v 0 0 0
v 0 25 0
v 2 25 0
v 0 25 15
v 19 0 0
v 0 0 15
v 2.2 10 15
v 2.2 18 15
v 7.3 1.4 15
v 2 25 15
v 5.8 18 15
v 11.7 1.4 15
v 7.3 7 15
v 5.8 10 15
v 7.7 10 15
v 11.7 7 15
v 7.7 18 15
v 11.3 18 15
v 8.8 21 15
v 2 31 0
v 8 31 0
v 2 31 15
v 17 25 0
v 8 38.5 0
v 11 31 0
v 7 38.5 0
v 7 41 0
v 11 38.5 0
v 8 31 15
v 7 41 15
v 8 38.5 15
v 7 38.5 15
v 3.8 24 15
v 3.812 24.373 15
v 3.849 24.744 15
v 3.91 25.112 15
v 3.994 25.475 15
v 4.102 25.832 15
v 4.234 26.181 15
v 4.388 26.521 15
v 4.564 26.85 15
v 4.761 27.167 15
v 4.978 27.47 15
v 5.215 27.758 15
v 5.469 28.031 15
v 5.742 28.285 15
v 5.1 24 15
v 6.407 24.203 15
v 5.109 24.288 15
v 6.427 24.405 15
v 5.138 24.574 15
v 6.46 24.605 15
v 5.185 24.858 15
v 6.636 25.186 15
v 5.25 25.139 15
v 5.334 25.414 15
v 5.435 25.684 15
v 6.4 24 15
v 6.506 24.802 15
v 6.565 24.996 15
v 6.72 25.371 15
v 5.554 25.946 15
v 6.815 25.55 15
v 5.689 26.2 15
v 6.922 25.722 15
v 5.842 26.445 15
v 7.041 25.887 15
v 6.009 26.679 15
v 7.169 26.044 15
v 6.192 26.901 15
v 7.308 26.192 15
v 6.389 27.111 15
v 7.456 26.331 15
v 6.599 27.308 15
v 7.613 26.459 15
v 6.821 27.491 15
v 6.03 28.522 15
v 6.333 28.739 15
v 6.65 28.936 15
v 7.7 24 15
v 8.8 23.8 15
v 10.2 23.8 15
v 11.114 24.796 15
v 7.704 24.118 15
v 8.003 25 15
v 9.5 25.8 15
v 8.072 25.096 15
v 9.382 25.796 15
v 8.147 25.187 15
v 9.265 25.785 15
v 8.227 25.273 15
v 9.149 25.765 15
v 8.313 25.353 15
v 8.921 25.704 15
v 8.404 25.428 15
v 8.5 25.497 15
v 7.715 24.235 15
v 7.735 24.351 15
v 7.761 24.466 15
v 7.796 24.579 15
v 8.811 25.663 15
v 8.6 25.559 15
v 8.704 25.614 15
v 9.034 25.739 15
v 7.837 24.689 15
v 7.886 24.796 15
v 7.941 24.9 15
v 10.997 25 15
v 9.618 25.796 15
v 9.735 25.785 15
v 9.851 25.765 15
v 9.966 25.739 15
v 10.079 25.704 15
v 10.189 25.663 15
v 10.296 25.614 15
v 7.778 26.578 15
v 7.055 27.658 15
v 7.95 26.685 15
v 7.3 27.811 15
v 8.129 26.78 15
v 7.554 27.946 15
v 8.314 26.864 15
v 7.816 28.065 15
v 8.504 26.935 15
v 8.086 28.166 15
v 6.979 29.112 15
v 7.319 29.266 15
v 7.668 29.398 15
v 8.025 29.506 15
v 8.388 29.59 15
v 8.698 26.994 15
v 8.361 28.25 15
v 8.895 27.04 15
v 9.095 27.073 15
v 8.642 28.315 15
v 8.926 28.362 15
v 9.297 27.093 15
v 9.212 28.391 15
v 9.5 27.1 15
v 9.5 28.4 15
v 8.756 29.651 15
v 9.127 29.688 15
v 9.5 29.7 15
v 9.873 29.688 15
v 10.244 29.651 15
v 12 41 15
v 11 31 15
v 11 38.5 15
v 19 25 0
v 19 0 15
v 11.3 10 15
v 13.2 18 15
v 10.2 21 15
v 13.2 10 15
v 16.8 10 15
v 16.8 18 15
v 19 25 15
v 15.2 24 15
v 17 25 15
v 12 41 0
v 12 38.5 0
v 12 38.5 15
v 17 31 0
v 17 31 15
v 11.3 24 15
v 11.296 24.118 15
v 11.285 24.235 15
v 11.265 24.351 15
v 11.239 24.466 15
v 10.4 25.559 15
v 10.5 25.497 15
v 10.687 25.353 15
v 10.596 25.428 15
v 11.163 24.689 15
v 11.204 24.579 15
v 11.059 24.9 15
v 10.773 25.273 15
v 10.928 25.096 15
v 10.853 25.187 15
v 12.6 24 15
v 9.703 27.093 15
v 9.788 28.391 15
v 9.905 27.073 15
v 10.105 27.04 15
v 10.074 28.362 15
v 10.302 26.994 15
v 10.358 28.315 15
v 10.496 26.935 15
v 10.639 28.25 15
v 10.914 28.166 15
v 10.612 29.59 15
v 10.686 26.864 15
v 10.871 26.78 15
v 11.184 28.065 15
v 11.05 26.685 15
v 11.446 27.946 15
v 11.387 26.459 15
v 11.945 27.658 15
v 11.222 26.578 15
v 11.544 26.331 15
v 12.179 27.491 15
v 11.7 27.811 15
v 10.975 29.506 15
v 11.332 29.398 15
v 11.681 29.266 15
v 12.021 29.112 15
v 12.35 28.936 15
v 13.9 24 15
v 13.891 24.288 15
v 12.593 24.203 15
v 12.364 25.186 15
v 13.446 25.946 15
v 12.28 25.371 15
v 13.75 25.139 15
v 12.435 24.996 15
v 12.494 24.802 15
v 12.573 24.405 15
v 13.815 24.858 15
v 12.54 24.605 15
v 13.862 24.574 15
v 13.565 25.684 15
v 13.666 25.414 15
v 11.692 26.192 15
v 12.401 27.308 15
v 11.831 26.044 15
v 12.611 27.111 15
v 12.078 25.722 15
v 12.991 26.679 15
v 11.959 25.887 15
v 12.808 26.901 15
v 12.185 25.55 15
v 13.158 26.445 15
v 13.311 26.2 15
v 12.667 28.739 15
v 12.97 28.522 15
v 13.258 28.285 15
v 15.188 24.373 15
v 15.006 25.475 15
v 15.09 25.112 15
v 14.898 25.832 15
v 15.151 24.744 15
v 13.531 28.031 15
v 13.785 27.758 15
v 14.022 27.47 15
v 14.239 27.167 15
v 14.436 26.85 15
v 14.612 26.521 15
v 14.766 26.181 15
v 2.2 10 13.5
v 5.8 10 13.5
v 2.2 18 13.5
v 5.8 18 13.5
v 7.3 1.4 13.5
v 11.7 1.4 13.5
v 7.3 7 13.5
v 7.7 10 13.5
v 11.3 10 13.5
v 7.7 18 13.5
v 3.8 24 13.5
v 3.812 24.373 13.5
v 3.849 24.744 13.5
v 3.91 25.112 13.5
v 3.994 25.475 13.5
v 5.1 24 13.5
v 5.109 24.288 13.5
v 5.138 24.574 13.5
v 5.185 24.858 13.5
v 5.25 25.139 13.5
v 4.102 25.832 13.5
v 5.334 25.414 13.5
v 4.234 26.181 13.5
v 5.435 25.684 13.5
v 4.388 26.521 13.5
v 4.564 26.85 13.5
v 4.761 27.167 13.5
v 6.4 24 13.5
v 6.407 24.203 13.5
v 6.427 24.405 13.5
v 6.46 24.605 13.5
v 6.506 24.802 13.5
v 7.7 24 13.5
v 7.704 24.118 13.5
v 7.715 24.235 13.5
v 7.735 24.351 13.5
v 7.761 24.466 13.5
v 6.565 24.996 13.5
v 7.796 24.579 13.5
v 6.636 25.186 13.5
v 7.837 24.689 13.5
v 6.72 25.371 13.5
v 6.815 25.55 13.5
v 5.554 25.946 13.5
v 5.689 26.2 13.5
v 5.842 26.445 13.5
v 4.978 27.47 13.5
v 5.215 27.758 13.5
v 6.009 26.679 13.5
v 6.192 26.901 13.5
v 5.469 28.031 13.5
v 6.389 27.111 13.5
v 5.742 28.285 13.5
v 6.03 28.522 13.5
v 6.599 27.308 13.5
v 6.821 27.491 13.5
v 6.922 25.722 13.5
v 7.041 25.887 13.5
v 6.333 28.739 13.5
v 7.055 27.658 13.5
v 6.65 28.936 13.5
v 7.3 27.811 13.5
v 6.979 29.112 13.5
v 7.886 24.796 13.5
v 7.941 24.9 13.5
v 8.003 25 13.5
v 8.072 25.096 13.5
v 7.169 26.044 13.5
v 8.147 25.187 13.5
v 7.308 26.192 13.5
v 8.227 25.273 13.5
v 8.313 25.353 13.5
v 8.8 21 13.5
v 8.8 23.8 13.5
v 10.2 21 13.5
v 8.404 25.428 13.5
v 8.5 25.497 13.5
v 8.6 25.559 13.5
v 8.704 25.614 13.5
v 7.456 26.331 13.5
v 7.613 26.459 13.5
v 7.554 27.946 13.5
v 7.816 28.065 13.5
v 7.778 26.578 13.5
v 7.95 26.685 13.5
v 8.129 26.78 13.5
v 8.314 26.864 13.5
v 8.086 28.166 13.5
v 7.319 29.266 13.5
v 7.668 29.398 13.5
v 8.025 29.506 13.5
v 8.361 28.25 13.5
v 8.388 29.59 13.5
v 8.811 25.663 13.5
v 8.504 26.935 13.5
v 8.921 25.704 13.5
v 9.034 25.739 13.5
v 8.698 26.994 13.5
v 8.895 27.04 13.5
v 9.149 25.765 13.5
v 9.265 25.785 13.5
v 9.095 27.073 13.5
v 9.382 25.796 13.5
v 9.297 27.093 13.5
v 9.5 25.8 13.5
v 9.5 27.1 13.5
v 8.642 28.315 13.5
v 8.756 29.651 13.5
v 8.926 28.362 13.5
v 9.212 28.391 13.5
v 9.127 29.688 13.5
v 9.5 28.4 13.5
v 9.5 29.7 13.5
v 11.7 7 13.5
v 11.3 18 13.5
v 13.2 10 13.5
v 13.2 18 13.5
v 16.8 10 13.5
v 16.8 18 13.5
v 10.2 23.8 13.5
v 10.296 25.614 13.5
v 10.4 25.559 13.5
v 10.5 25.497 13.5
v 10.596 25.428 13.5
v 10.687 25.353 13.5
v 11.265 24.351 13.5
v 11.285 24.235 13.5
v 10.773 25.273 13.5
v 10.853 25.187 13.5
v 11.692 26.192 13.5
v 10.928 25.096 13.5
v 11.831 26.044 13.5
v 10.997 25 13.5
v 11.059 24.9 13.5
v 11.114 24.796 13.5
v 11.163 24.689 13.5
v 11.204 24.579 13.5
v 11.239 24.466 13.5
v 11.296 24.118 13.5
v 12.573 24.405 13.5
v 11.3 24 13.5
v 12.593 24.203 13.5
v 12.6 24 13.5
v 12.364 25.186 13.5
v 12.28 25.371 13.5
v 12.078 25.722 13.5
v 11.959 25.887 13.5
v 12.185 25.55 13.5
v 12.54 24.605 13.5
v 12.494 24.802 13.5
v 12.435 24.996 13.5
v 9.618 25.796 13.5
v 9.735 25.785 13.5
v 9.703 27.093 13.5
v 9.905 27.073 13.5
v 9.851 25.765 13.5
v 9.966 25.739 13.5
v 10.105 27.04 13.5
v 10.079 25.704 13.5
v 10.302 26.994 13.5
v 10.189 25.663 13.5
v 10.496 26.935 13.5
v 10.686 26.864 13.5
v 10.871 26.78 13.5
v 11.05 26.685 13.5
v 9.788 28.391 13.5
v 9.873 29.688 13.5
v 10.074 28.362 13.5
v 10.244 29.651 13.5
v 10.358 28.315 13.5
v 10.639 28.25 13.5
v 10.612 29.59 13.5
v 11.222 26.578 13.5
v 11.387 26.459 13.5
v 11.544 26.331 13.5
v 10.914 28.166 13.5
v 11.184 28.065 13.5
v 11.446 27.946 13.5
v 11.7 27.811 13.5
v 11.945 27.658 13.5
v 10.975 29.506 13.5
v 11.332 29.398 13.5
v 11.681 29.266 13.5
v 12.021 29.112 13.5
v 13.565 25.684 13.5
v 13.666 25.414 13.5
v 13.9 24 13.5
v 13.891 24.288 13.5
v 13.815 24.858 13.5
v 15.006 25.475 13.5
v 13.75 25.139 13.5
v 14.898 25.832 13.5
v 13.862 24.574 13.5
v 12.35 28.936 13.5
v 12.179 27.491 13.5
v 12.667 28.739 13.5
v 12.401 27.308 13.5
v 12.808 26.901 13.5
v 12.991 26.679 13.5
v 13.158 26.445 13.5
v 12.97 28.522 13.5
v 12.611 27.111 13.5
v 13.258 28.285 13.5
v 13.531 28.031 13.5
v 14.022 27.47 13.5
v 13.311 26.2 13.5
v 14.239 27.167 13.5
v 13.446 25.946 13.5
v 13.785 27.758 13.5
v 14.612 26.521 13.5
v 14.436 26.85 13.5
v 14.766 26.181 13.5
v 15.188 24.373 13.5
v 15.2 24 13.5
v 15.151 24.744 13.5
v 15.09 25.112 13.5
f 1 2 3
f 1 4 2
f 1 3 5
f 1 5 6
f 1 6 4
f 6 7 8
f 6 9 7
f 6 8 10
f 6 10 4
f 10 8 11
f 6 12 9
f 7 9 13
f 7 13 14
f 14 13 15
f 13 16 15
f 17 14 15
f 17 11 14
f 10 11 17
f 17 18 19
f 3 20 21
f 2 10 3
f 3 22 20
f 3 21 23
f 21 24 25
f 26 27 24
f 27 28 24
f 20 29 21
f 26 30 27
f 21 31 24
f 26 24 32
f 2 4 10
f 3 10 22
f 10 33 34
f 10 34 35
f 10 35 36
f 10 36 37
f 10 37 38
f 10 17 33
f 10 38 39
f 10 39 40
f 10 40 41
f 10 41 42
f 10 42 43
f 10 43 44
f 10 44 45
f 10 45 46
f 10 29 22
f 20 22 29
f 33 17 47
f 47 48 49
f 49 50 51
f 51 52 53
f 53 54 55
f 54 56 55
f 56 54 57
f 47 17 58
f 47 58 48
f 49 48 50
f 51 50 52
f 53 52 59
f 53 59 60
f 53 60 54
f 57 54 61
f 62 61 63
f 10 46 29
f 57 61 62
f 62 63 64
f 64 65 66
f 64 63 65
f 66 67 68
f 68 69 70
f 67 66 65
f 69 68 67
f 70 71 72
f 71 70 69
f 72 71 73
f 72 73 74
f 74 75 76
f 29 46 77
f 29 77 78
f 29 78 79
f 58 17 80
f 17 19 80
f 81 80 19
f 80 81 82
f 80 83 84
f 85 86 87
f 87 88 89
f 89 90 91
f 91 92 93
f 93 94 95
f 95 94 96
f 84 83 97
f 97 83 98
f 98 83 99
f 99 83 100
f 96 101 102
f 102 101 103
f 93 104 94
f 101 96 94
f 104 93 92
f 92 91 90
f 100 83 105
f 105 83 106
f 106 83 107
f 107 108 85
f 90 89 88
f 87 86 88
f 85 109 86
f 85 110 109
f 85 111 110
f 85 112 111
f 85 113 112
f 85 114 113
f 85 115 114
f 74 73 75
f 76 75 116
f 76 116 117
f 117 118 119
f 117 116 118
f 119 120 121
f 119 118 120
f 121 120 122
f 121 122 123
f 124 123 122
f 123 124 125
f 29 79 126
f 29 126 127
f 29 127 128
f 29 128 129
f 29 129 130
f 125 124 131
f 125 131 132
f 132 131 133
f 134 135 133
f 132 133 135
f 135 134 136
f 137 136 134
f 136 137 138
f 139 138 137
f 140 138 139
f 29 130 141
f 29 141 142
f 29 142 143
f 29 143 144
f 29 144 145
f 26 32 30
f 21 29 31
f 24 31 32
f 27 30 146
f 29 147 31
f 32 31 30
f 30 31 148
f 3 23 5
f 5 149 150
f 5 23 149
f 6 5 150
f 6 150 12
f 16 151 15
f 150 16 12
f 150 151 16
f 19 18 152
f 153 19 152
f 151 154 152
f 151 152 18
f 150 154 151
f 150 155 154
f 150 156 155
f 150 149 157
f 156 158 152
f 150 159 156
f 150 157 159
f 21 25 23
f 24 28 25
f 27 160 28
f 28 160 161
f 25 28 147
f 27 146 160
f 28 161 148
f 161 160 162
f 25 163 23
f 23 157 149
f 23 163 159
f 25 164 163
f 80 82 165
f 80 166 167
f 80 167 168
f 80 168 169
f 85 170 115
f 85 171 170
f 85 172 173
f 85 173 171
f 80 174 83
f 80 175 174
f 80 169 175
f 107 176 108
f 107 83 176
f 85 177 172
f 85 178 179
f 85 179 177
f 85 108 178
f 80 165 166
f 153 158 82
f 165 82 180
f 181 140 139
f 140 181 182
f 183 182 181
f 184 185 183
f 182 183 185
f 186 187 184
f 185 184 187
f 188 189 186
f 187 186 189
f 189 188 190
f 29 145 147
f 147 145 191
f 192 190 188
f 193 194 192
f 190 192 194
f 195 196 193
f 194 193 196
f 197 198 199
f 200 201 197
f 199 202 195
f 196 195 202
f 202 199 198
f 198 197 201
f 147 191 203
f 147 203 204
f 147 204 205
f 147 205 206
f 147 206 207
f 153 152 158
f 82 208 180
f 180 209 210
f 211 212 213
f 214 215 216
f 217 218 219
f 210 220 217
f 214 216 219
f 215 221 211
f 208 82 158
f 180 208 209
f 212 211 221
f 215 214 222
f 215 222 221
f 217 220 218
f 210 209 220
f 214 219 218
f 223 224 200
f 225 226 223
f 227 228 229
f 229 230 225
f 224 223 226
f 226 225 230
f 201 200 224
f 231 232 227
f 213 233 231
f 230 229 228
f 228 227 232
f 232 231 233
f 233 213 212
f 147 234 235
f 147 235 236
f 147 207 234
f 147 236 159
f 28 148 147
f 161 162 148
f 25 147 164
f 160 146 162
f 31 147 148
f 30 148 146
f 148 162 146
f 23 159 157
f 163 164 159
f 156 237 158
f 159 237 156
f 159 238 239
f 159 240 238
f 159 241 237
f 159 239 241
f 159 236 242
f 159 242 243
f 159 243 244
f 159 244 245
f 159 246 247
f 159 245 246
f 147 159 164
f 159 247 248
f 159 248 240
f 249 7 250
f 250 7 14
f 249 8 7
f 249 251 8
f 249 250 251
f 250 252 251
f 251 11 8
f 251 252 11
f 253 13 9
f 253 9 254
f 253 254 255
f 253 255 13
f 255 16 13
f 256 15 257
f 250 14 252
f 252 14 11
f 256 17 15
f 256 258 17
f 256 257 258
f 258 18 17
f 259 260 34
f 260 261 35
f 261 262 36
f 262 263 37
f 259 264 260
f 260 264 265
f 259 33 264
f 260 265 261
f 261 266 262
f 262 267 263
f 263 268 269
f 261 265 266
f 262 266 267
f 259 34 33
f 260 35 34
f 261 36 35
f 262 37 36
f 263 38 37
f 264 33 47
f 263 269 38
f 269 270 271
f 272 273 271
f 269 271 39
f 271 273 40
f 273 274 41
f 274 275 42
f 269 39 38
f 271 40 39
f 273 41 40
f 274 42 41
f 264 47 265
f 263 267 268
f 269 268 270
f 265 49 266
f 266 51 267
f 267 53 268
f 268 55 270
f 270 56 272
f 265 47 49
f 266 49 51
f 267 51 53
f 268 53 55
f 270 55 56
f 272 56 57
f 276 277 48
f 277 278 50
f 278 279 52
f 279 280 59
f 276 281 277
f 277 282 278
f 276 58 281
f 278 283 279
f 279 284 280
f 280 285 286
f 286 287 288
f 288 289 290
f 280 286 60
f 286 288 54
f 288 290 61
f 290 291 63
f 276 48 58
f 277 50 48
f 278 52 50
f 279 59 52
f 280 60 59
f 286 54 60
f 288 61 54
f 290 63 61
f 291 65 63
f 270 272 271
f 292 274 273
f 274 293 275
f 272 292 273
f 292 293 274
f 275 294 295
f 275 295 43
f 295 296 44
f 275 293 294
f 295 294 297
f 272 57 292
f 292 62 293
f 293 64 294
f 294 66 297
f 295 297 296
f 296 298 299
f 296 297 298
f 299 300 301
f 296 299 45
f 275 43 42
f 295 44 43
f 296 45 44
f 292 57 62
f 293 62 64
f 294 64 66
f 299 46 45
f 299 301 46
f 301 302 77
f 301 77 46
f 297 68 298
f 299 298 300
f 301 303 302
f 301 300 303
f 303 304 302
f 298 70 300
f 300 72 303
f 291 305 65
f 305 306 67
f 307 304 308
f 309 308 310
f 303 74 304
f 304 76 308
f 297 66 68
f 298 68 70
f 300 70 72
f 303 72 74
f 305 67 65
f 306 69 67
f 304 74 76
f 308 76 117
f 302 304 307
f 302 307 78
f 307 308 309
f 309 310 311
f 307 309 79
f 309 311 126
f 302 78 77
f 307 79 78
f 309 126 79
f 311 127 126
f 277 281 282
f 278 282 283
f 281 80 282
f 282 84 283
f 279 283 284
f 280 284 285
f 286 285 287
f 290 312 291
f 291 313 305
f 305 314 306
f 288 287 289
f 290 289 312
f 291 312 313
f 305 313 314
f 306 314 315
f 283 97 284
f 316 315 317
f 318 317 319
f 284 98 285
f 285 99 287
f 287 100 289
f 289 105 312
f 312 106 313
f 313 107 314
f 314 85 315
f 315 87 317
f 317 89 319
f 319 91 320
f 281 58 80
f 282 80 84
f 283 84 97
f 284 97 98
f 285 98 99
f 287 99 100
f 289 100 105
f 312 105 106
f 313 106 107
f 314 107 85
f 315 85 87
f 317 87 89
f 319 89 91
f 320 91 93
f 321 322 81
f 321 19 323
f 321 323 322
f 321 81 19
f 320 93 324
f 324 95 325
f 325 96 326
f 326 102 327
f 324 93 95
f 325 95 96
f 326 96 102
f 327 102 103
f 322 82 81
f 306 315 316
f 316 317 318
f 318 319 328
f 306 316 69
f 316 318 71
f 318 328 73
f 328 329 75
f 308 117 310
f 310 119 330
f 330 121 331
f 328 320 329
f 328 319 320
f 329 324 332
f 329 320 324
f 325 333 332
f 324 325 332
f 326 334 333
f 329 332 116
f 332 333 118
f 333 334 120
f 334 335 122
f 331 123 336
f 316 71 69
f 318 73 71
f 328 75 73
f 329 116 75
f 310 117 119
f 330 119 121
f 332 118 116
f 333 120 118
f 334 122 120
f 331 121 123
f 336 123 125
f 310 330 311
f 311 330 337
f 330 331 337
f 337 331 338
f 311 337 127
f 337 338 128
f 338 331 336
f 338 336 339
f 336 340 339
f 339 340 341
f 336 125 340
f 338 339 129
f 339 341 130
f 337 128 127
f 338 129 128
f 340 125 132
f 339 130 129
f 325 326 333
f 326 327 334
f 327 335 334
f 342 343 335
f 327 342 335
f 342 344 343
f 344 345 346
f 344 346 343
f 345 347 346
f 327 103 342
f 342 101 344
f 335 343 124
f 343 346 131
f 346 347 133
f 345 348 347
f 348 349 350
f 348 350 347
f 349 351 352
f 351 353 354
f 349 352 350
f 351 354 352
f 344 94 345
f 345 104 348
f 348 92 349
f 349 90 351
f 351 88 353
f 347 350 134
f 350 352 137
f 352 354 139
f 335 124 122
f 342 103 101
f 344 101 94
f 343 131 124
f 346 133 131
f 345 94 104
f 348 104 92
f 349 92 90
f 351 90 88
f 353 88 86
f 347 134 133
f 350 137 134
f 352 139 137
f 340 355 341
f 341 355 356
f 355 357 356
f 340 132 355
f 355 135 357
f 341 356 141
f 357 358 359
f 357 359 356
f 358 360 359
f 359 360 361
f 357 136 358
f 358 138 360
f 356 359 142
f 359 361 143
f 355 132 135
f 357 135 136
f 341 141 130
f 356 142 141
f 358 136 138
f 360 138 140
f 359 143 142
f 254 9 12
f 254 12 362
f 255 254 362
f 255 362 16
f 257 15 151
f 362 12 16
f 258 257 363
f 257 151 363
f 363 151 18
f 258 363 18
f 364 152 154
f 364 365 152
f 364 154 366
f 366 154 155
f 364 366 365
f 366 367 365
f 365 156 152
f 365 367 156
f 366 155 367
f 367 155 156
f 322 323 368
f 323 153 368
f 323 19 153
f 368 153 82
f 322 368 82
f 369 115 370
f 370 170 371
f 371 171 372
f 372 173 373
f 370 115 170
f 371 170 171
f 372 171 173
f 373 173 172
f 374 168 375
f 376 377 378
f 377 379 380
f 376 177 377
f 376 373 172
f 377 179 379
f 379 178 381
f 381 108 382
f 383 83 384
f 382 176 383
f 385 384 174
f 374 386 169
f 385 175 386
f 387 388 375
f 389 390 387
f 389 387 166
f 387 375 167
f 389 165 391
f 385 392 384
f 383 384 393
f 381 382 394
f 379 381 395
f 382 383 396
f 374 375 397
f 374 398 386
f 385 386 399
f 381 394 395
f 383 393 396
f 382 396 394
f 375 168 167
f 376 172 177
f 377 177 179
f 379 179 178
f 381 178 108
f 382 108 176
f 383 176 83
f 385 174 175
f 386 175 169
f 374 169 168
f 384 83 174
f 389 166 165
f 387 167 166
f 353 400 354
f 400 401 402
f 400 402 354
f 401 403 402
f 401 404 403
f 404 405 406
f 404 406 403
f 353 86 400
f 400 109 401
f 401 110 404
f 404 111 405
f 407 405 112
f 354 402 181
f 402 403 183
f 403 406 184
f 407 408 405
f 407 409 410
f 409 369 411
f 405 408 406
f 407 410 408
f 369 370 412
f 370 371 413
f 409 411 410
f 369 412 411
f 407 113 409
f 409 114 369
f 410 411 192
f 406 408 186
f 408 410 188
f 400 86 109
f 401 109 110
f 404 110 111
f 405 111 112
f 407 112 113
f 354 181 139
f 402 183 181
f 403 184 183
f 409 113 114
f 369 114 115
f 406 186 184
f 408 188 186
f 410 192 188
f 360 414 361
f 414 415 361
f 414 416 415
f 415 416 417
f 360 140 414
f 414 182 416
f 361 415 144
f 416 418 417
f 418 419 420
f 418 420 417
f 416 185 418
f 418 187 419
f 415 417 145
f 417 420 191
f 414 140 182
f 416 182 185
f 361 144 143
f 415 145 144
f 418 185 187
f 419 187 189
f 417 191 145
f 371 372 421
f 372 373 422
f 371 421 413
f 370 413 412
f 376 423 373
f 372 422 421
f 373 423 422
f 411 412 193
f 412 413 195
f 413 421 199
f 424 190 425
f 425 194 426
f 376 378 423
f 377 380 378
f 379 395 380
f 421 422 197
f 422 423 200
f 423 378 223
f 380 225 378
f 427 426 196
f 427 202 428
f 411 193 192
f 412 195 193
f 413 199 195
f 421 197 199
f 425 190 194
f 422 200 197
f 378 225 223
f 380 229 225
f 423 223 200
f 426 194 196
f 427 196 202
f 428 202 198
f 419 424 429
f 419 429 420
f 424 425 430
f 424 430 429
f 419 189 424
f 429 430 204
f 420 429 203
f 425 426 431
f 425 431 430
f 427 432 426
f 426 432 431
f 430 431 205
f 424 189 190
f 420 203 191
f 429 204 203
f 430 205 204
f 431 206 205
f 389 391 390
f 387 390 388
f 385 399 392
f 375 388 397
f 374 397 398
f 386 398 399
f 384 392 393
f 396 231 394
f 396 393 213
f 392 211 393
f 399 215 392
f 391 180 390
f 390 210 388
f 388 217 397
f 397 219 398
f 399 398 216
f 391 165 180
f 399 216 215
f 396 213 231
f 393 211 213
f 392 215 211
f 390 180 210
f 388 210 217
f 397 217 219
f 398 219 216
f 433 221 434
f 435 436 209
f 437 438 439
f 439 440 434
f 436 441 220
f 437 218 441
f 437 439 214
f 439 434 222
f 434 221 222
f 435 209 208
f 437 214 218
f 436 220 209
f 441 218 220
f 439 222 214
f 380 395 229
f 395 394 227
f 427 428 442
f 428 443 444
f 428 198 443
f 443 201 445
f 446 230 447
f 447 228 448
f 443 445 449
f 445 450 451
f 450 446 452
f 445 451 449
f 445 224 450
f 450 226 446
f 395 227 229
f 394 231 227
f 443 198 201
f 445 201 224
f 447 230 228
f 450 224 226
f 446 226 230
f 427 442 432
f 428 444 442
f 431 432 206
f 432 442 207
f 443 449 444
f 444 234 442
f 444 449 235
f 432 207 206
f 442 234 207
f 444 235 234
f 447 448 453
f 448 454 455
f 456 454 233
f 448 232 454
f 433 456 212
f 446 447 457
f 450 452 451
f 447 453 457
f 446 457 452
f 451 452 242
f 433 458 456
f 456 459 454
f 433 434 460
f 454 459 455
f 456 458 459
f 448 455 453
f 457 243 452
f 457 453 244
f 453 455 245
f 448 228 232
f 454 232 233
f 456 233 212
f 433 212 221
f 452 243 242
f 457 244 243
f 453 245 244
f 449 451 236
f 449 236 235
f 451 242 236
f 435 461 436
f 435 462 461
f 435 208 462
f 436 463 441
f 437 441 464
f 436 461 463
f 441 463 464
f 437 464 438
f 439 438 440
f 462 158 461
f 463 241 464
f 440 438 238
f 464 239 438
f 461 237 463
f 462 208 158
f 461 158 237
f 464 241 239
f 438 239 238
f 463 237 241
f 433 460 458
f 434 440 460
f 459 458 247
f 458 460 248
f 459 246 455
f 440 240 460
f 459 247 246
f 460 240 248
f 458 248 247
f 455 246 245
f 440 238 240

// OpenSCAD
// Building miniatures — Tech, AI & Digital
// Units: millimetres. X = width; Y = facade height; Z = depth.
// Print flat on the back at Z=0. Front Z=15; recesses are 1.5 mm deep.
$fn=96;
depth=15;
recess=1.5;
module rect(x,y,w,h) { translate([x,y]) square([w,h]); }
module disc(x,y,r) { translate([x,y]) circle(r=r); }
module rr(x,y,w,h,r=1) { hull() for(a=[x+r,x+w-r],b=[y+r,y+h-r]) disc(a,b,r); }
module stroke(a,b,w=1.4) { hull() {disc(a[0],a[1],w/2);disc(b[0],b[1],w/2);} }
module ring(x,y,r,w=1.4) { difference(){disc(x,y,r);disc(x,y,r-w);} }
module framed(x,y,w,h,t=1.4) { difference(){rect(x,y,w,h);rect(x+t,y+t,w-2*t,h-2*t);} }
module arrow(a,b,w=1.5) { v=b-a; u=v/norm(v); n=[-u[1],u[0]]; tip=b; neck=b-u*2.8; stroke(a,neck,w); polygon([tip,neck+n*1.9,neck-n*1.9]); }
module building(){difference(){linear_extrude(height=depth) silhouette();translate([0,0,depth-recess]) linear_extrude(height=recess+0.2) details();}}
building();

module silhouette(){union(){rect(0,0,19,25);rect(2,23,15,8);rect(8,29,3,10);rect(7,38.5,5,2.5);}}
module details(){
 rect(7.3,1.4,4.4,5.6);
 for(x=[2.2,7.7,13.2]) rect(x,10,3.6,8);
 intersection(){ring(9.5,24,5.7,1.3);rect(3.5,24,12,6);}
 intersection(){ring(9.5,24,3.1,1.3);rect(6.2,24,6.6,3.2);}
 rect(8.8,21,1.4,2.8);
}
